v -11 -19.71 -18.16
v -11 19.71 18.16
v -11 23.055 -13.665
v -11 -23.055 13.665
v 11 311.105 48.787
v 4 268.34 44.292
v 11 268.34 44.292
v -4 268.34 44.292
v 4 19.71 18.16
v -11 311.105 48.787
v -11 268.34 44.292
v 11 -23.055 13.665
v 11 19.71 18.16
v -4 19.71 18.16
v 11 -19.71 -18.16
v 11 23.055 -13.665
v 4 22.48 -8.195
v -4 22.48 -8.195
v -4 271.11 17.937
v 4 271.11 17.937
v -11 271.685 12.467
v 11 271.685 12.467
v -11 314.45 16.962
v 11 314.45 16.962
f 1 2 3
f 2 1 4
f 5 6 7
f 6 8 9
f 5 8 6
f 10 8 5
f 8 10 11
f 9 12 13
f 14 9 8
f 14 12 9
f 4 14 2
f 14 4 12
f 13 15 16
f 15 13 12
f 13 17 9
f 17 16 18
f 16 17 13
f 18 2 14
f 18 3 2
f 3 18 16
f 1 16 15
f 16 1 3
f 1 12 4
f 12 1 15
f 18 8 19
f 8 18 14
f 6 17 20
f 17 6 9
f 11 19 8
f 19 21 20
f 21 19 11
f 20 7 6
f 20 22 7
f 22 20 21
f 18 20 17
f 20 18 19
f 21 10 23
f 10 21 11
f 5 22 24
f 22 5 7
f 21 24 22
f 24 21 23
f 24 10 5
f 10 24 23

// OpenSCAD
//cm

Tw=22;
Tl=43;
Th=32;

tw=8;
tl=250;
th=26.5;

rotate([6,0,0]){
union(){
    cube([Tw,Tl,Th],true);
    translate([0,Tl/2+tl/2,Th/2-th/2])cube([tw,tl,th],true);
    translate([0,Tl+tl,0])cube([Tw,Tl,Th],true);
}
}
